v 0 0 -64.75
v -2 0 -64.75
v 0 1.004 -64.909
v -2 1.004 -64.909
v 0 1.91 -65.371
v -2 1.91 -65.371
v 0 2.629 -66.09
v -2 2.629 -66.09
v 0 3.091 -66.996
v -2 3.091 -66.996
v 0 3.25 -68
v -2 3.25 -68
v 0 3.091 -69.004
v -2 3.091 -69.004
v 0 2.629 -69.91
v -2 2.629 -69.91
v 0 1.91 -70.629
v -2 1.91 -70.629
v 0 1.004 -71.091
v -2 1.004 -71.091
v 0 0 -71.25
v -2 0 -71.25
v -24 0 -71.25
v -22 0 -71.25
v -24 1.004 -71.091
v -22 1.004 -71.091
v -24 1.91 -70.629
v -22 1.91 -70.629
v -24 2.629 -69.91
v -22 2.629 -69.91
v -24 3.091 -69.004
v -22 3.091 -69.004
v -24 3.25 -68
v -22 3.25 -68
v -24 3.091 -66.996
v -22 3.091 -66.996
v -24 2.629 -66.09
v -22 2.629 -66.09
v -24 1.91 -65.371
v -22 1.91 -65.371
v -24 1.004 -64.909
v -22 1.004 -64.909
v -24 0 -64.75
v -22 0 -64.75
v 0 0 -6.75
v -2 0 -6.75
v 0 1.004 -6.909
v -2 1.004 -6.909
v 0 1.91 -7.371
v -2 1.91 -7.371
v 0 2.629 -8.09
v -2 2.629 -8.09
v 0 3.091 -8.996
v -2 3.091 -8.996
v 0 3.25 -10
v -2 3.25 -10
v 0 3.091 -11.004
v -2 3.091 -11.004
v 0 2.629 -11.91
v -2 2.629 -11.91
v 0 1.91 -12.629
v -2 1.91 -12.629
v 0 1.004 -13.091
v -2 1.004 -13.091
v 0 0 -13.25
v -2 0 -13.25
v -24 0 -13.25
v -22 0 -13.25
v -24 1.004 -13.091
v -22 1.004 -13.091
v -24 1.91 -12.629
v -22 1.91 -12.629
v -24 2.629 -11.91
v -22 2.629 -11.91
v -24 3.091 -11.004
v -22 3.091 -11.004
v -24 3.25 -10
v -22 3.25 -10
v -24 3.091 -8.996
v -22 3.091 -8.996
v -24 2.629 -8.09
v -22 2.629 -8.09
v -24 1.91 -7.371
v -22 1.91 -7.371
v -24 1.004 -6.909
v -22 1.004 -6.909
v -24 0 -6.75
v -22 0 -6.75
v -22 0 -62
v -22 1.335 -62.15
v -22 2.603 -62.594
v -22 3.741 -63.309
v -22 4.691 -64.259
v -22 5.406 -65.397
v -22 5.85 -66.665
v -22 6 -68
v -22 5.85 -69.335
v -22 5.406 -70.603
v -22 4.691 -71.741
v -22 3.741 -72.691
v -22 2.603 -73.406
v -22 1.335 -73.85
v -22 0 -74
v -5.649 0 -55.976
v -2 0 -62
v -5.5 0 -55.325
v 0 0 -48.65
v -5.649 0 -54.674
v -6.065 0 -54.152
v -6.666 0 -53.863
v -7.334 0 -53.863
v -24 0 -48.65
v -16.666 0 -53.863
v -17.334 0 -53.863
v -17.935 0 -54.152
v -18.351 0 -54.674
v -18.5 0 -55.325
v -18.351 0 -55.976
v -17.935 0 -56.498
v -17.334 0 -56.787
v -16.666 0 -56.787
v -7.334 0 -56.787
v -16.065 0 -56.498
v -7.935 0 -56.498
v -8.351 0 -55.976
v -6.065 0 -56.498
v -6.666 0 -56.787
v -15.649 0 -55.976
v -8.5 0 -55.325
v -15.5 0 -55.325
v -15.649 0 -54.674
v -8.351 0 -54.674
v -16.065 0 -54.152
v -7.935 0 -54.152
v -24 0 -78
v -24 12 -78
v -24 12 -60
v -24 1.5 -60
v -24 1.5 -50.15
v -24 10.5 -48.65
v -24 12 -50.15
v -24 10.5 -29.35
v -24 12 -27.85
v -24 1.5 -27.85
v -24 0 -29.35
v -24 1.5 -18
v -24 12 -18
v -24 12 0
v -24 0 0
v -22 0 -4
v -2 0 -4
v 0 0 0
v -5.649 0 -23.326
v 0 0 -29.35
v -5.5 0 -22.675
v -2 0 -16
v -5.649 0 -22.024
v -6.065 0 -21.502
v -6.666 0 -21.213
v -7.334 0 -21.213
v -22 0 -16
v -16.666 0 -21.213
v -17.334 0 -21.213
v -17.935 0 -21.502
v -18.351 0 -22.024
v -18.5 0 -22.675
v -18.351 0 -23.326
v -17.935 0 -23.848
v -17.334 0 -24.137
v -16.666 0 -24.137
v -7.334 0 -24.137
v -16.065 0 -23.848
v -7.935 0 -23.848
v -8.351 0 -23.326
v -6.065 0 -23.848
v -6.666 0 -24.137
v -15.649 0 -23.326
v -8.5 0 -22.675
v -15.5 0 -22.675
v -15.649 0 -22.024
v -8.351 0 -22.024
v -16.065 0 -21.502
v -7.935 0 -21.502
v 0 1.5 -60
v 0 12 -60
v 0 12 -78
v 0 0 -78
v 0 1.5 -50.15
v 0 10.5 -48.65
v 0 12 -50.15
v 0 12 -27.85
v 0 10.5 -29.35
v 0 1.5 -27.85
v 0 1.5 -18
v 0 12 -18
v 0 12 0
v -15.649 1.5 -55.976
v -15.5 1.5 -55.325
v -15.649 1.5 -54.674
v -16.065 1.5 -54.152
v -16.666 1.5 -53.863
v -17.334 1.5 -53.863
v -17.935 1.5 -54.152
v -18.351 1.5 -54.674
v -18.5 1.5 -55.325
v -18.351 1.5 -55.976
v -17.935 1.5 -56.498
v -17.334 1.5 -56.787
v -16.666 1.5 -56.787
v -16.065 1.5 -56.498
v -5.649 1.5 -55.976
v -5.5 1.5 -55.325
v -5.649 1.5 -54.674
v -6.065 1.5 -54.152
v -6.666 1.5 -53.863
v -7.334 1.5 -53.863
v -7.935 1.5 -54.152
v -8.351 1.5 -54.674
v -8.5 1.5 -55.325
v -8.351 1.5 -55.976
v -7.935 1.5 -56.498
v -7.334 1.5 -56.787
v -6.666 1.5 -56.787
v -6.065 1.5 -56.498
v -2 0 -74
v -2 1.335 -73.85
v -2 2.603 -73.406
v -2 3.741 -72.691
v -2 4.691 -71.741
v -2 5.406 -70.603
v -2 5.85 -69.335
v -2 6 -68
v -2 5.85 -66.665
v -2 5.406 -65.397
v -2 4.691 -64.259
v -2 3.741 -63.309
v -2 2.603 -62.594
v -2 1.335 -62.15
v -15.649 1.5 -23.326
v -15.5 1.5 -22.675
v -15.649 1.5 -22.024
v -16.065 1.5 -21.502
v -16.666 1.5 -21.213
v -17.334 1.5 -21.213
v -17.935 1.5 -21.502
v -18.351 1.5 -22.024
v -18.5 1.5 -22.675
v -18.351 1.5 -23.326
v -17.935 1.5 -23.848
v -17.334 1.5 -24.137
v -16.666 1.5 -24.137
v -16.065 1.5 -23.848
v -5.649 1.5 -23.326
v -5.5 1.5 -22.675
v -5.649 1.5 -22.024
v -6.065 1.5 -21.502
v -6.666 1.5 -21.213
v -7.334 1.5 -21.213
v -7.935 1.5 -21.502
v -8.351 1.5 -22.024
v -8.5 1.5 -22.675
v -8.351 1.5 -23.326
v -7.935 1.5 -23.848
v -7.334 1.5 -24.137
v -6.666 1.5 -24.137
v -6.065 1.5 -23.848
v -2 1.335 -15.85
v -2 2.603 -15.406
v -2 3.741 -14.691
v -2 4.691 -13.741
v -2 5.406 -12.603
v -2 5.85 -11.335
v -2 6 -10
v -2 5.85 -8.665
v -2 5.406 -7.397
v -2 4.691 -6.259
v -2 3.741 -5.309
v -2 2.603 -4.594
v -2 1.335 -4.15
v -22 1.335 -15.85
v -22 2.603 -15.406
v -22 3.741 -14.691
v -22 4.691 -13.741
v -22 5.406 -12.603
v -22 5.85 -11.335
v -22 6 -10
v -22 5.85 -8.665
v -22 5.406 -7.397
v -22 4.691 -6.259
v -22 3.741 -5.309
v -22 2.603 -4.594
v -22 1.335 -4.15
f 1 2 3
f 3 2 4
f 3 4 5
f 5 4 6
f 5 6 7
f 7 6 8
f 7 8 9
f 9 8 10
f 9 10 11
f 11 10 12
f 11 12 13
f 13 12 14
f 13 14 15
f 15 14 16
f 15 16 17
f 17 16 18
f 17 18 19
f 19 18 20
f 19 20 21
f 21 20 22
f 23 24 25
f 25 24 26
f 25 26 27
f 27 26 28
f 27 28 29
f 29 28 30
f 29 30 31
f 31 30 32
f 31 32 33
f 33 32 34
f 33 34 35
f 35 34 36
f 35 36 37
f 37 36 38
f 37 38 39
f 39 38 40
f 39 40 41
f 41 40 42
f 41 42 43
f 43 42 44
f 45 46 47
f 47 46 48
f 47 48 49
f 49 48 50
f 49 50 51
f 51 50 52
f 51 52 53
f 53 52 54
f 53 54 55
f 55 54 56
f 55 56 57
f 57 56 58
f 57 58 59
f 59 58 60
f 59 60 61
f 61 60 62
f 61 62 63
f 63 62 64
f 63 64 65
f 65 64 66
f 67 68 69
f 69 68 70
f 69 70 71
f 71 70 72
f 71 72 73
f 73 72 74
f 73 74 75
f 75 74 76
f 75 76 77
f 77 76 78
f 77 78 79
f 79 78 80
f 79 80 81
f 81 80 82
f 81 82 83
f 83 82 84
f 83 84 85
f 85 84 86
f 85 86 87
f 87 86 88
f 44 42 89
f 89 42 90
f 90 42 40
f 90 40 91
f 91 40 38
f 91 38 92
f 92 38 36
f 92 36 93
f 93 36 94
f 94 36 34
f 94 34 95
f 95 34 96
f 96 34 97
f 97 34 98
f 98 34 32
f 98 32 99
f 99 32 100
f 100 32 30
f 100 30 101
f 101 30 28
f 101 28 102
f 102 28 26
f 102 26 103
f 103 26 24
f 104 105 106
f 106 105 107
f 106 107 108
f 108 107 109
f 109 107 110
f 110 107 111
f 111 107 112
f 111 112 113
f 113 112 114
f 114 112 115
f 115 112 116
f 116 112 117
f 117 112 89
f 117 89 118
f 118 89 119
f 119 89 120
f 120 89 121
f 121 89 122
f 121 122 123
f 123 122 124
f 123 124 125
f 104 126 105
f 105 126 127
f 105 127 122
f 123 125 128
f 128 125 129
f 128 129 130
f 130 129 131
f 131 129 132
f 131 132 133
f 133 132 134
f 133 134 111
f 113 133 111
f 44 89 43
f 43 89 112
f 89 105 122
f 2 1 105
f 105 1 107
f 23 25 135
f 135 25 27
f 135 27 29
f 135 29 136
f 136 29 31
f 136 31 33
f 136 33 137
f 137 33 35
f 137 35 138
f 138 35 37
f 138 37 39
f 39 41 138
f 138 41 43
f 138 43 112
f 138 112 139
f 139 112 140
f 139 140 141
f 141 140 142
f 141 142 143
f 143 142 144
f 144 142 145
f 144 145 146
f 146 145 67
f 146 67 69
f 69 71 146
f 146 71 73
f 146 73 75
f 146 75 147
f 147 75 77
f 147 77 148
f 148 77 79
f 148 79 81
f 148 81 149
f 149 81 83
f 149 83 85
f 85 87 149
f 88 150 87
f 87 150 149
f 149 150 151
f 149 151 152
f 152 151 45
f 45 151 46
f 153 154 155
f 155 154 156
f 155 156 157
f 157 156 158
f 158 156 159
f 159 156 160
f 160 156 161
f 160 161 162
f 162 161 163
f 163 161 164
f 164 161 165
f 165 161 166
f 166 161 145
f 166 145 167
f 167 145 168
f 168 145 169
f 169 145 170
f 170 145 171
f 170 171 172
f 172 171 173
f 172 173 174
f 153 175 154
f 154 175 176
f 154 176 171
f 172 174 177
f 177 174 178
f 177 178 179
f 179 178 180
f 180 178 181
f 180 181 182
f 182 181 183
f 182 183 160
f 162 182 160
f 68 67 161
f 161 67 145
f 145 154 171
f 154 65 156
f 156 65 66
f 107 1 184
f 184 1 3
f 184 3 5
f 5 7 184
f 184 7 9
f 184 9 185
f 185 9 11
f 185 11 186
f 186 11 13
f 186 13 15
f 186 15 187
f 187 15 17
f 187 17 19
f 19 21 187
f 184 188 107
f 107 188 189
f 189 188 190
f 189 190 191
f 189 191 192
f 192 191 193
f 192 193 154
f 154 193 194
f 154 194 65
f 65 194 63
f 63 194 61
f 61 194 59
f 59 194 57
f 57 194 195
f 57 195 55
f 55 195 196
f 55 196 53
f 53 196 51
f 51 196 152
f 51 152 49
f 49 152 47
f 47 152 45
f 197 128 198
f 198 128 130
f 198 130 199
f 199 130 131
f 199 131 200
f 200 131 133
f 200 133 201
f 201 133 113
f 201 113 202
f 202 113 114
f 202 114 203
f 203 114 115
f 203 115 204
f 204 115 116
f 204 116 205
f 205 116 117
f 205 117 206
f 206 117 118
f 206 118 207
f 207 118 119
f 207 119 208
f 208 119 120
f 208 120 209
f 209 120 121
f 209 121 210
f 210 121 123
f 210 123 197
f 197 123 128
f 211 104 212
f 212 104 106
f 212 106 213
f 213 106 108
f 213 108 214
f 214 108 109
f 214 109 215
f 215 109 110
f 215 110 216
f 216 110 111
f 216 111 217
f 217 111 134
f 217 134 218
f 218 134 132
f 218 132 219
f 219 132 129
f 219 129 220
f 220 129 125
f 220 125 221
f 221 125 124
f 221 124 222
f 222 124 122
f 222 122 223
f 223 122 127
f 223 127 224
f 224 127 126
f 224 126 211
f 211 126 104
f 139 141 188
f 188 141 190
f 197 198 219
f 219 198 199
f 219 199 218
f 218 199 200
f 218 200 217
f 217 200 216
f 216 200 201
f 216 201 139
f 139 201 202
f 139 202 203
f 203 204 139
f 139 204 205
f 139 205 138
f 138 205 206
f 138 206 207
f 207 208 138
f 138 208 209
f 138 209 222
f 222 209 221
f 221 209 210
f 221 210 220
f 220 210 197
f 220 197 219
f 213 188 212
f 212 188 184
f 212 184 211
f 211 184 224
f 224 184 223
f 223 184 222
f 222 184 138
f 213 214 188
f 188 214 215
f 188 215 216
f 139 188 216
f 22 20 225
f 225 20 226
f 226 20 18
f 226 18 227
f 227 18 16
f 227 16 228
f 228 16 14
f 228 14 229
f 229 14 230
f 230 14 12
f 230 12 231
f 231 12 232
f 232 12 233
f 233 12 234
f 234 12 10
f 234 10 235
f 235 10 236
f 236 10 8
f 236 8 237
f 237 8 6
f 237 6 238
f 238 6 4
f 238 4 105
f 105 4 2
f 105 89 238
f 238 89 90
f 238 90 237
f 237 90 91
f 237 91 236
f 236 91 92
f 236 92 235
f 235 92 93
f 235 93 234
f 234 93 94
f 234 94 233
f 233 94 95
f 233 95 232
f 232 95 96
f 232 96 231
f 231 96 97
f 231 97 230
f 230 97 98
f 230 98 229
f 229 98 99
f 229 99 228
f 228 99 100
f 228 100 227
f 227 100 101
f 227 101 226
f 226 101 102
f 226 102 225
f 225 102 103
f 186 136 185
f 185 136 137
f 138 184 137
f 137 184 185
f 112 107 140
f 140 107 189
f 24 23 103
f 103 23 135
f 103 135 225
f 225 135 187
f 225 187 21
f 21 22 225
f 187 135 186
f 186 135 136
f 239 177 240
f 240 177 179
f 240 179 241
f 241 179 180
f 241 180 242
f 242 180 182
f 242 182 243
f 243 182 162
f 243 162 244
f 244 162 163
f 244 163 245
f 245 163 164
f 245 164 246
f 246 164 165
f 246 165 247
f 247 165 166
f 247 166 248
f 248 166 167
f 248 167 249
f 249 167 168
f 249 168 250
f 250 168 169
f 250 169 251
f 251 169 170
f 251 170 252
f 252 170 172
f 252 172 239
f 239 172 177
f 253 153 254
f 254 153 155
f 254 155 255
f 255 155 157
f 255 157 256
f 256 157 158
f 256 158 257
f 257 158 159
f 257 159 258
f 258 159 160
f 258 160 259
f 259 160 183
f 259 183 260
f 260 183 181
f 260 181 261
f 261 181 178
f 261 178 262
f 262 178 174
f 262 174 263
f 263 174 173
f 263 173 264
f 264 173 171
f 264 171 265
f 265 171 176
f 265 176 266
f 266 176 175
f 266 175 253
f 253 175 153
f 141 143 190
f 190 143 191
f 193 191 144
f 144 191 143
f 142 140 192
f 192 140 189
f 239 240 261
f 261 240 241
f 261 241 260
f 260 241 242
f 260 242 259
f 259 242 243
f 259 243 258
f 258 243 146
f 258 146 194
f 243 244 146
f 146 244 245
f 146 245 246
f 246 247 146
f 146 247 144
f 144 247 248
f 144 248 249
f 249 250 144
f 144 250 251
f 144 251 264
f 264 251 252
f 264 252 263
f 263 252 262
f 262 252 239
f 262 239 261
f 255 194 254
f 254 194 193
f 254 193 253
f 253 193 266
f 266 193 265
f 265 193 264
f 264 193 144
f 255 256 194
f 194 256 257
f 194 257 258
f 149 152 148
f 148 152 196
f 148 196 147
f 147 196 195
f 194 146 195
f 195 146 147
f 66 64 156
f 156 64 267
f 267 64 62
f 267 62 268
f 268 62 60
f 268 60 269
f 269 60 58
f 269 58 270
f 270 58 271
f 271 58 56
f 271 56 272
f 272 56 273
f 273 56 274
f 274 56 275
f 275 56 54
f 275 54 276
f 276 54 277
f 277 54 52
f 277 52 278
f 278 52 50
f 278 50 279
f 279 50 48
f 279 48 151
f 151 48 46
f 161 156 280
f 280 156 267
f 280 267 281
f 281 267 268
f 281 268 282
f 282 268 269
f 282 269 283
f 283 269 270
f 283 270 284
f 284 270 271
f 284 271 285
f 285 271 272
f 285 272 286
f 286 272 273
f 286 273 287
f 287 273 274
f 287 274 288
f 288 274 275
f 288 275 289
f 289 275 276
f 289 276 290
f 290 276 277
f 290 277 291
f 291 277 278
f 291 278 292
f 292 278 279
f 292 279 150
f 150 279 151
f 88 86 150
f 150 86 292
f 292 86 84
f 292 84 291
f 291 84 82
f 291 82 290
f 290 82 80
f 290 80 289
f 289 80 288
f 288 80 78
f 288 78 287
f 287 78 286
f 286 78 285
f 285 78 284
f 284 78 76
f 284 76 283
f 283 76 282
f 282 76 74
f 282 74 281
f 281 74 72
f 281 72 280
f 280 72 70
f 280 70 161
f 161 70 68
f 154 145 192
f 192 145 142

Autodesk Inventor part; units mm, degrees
ref_plane "YZ Plane" through (0, 0, 0) normal (1, 0, 0) x (0, 1, 0)
ref_plane "XZ Plane" through (0, 0, 0) normal (0, 1, 0) x (-1, 0, 0)
sketch "Sketch1" plane through (0, 0, 0) normal (0, 1, 0) x (-1, 0, 0)
  line L0 (0, 0) -> (24, 0)
  line L1 (24, 0) -> (24, -78)
  line L2 (24, -78) -> (0, -78)
  line L3 (0, -78) -> (0, 0)
  dimension "d0" = 78
  dimension "d1" = 24
extrude "Extrusion1" add sketch "Sketch1" along normal blind 1.5
sketch "Sketch2" plane through (-24, 0, 0) normal (0, 0, 1) x (1, 0, 0)
  line L0 (24, 0) -> (0, 0) projected
  line L1 (0, 0) -> (24, 0)
  line L2 (24, 0) -> (24, 12)
  line L3 (24, 12) -> (0, 12)
  line L4 (0, 12) -> (0, 0)
  line L5 (24, 0) -> (24, 1.5) projected
  dimension "d4" = 12
extrude "Extrusion2" add sketch "Sketch2" against normal blind 18
sketch "Sketch3" plane through (0, 0, 0) normal (0, -1, 0) x (1, 0, 0)
  line L0 (-2, -10) -> (-22, -10)
  line L1 (-22, -10) -> (-22, -16)
  line L2 (-22, -16) -> (-2, -16)
  line L3 (-2, -16) -> (-2, -10)
  line L4 (-24, 0) -> (0, 0) projected
  line L5 (-24, -78) -> (-24, 0) projected
  line L6 (-2, -13) -> (-22, -13) construction
  line L7 (-12, 0) -> (-12, -78) construction
  line L8 (0, -78) -> (-24, -78) construction
  point P0 (-12, -13)
  dimension "d7" = 20
  dimension "d8" = 6
  dimension "d9" = 16
revolve "Revolution1" cut sketch "Sketch3" angle 360 about axis through (-2, 0, -10) along (-1, 0, 0)
ref_plane "Work Plane1" through (-24, 0, -39) normal (0, 0, 1) x (1, 0, 0)
sketch "Sketch4" plane through (0, 0, 0) normal (0, -1, 0) x (1, 0, 0)
  line L0 (0, 0) -> (0, -78) construction
  line L1 (0, -39) -> (-24, -39) construction
  line L2 (-24, -78) -> (-24, -18) construction
  line L3 (-24, -48.65) -> (0, -48.65)
  line L4 (0, -48.65) -> (0, -29.35)
  line L5 (0, -29.35) -> (-24, -29.35)
  line L6 (-24, -29.35) -> (-24, -48.65)
  line L7 (-24, -48.65) -> (0, -29.35) construction
  line L8 (0, -48.65) -> (-24, -29.35) construction
  point P0 (-12, -39)
  dimension "d12" = 19.3
extrude "Extrusion3" cut sketch "Sketch4" against normal up to surface (1.5 mm away)
sketch "Sketch5" plane through (0, 0, 0) normal (1, 0, 0) x (0, 0, -1)
  line L0 (29.35, 0) -> (29.35, 1.5) projected
  line L1 (29.35, 0) -> (27.85, 0)
  line L2 (27.85, 0) -> (27.85, 10.5)
  line L3 (27.85, 10.5) -> (29.35, 10.5)
  line L4 (29.35, 10.5) -> (29.35, 0)
  line L5 (27.85, 10.5) -> (39, 10.5)
  line L6 (39, 10.5) -> (39, 12)
  line L7 (39, 12) -> (27.85, 12)
  line L8 (27.85, 12) -> (27.85, 10.5)
  point P0 (0, 0)
  point P1 (29.35, 10.5)
  dimension "d15" = 1.5
  dimension "d16" = 10.5
  dimension "d17" = 1.5
  dimension "d18" = 11.15
extrude "Extrusion4" add sketch "Sketch5" against normal up to surface (24 mm away)
sketch "Sketch6" plane through (0, 0, 0) normal (0, -1, 0) x (1, 0, 0)
  line L0 (-2, -16) -> (-22, -16) construction
  line L1 (-24, -29.35) -> (0, -29.35) construction
  line L2 (-2, -16) -> (-22, -16) construction
  line L3 (-22, -16) -> (-22, -29.35) construction
  line L4 (-22, -29.35) -> (-2, -29.35) construction
  line L5 (-2, -29.35) -> (-2, -16) construction
  line L6 (-22, -16) -> (-22, -4) construction
  line L7 (-2, -22.675) -> (-22, -22.675) construction
  line L8 (-17, -22.675) -> (-7, -22.675) construction
  point P0 (0, 0)
  point P1 (-12, -22.675)
  dimension "d21" = 10
hole "Hole1" at (-7, 0, -22.675) at (-17, 0, -22.675) direction (0, 1, 0) diameter 3 depth 1.5
mirror "Mirror1" about plane through (-24, 0, -39) normal (0, 0, 1) of "Extrusion2", "Revolution1", "Extrusion4", "Hole1"
sketch "Sketch7" plane through (0, 0, 0) normal (1, 0, 0) x (0, 0, -1)
  line L0 (16, 0) -> (4, 0) projected
  arc A0 (13.25, 0) -> (6.75, 0) centre (10, 0) ccw
  line L1 (48.65, 0) -> (78, 0) projected
  arc A1 (71.25, 0) -> (64.75, 0) centre (68, 0) ccw
  arc A2 (16, 0) -> (4, 0) centre (10, 0) ccw projected
  arc A3 (74, 0) -> (62, 0) centre (68, 0) ccw projected
  line L2 (6.75, 0) -> (13.25, 0)
  line L3 (64.75, 0) -> (71.25, 0)
  point P0 (0, 0)
  dimension "d29" = 3.25
extrude "Extrusion5" cut sketch "Sketch7" against normal up to surface (24 mm away) contours L0 A0 | A1 L1
equation "\"d1\" = slider_top_width"
equation "\"d2\" = slider_top_thickness"
equation "\"d4\" = slider_top_height"
equation "\"d5\" = 2 * bearing_dist - bearing_diameter"
equation "\"d7\" = bearing_length"
equation "\"d8\" = 0.5 * bearing_diameter"
equation "\"d13\" = 2 * bearing_dist - bearing_diameter"
equation "\"d21\" = screw_dist"
equation "\"d22\" = screw_diameter"
equation "\"d29\" = 0.5 * rod_free_tolerance + 0.5 * slider_rod_diameter"
equation "\"slider_top_width\" = 24"
equation "\"slider_top_height\" = 12"
equation "\"slider_top_thickness\" = 1.5"
equation "\"bearing_length\" = 20"
equation "\"bearing_diameter\" = 12"
equation "\"bearing_dist\" = 15"
equation "\"lead_screw_outer_diameter\" = 12"
equation "\"screw_dist\" = 10"
equation "\"screw_diameter\" = 3"
equation "\"slider_rod_diameter\" = 6"
equation "\"rod_free_tolerance\" = 0.5"
properties part number "carriage_slider_top"
